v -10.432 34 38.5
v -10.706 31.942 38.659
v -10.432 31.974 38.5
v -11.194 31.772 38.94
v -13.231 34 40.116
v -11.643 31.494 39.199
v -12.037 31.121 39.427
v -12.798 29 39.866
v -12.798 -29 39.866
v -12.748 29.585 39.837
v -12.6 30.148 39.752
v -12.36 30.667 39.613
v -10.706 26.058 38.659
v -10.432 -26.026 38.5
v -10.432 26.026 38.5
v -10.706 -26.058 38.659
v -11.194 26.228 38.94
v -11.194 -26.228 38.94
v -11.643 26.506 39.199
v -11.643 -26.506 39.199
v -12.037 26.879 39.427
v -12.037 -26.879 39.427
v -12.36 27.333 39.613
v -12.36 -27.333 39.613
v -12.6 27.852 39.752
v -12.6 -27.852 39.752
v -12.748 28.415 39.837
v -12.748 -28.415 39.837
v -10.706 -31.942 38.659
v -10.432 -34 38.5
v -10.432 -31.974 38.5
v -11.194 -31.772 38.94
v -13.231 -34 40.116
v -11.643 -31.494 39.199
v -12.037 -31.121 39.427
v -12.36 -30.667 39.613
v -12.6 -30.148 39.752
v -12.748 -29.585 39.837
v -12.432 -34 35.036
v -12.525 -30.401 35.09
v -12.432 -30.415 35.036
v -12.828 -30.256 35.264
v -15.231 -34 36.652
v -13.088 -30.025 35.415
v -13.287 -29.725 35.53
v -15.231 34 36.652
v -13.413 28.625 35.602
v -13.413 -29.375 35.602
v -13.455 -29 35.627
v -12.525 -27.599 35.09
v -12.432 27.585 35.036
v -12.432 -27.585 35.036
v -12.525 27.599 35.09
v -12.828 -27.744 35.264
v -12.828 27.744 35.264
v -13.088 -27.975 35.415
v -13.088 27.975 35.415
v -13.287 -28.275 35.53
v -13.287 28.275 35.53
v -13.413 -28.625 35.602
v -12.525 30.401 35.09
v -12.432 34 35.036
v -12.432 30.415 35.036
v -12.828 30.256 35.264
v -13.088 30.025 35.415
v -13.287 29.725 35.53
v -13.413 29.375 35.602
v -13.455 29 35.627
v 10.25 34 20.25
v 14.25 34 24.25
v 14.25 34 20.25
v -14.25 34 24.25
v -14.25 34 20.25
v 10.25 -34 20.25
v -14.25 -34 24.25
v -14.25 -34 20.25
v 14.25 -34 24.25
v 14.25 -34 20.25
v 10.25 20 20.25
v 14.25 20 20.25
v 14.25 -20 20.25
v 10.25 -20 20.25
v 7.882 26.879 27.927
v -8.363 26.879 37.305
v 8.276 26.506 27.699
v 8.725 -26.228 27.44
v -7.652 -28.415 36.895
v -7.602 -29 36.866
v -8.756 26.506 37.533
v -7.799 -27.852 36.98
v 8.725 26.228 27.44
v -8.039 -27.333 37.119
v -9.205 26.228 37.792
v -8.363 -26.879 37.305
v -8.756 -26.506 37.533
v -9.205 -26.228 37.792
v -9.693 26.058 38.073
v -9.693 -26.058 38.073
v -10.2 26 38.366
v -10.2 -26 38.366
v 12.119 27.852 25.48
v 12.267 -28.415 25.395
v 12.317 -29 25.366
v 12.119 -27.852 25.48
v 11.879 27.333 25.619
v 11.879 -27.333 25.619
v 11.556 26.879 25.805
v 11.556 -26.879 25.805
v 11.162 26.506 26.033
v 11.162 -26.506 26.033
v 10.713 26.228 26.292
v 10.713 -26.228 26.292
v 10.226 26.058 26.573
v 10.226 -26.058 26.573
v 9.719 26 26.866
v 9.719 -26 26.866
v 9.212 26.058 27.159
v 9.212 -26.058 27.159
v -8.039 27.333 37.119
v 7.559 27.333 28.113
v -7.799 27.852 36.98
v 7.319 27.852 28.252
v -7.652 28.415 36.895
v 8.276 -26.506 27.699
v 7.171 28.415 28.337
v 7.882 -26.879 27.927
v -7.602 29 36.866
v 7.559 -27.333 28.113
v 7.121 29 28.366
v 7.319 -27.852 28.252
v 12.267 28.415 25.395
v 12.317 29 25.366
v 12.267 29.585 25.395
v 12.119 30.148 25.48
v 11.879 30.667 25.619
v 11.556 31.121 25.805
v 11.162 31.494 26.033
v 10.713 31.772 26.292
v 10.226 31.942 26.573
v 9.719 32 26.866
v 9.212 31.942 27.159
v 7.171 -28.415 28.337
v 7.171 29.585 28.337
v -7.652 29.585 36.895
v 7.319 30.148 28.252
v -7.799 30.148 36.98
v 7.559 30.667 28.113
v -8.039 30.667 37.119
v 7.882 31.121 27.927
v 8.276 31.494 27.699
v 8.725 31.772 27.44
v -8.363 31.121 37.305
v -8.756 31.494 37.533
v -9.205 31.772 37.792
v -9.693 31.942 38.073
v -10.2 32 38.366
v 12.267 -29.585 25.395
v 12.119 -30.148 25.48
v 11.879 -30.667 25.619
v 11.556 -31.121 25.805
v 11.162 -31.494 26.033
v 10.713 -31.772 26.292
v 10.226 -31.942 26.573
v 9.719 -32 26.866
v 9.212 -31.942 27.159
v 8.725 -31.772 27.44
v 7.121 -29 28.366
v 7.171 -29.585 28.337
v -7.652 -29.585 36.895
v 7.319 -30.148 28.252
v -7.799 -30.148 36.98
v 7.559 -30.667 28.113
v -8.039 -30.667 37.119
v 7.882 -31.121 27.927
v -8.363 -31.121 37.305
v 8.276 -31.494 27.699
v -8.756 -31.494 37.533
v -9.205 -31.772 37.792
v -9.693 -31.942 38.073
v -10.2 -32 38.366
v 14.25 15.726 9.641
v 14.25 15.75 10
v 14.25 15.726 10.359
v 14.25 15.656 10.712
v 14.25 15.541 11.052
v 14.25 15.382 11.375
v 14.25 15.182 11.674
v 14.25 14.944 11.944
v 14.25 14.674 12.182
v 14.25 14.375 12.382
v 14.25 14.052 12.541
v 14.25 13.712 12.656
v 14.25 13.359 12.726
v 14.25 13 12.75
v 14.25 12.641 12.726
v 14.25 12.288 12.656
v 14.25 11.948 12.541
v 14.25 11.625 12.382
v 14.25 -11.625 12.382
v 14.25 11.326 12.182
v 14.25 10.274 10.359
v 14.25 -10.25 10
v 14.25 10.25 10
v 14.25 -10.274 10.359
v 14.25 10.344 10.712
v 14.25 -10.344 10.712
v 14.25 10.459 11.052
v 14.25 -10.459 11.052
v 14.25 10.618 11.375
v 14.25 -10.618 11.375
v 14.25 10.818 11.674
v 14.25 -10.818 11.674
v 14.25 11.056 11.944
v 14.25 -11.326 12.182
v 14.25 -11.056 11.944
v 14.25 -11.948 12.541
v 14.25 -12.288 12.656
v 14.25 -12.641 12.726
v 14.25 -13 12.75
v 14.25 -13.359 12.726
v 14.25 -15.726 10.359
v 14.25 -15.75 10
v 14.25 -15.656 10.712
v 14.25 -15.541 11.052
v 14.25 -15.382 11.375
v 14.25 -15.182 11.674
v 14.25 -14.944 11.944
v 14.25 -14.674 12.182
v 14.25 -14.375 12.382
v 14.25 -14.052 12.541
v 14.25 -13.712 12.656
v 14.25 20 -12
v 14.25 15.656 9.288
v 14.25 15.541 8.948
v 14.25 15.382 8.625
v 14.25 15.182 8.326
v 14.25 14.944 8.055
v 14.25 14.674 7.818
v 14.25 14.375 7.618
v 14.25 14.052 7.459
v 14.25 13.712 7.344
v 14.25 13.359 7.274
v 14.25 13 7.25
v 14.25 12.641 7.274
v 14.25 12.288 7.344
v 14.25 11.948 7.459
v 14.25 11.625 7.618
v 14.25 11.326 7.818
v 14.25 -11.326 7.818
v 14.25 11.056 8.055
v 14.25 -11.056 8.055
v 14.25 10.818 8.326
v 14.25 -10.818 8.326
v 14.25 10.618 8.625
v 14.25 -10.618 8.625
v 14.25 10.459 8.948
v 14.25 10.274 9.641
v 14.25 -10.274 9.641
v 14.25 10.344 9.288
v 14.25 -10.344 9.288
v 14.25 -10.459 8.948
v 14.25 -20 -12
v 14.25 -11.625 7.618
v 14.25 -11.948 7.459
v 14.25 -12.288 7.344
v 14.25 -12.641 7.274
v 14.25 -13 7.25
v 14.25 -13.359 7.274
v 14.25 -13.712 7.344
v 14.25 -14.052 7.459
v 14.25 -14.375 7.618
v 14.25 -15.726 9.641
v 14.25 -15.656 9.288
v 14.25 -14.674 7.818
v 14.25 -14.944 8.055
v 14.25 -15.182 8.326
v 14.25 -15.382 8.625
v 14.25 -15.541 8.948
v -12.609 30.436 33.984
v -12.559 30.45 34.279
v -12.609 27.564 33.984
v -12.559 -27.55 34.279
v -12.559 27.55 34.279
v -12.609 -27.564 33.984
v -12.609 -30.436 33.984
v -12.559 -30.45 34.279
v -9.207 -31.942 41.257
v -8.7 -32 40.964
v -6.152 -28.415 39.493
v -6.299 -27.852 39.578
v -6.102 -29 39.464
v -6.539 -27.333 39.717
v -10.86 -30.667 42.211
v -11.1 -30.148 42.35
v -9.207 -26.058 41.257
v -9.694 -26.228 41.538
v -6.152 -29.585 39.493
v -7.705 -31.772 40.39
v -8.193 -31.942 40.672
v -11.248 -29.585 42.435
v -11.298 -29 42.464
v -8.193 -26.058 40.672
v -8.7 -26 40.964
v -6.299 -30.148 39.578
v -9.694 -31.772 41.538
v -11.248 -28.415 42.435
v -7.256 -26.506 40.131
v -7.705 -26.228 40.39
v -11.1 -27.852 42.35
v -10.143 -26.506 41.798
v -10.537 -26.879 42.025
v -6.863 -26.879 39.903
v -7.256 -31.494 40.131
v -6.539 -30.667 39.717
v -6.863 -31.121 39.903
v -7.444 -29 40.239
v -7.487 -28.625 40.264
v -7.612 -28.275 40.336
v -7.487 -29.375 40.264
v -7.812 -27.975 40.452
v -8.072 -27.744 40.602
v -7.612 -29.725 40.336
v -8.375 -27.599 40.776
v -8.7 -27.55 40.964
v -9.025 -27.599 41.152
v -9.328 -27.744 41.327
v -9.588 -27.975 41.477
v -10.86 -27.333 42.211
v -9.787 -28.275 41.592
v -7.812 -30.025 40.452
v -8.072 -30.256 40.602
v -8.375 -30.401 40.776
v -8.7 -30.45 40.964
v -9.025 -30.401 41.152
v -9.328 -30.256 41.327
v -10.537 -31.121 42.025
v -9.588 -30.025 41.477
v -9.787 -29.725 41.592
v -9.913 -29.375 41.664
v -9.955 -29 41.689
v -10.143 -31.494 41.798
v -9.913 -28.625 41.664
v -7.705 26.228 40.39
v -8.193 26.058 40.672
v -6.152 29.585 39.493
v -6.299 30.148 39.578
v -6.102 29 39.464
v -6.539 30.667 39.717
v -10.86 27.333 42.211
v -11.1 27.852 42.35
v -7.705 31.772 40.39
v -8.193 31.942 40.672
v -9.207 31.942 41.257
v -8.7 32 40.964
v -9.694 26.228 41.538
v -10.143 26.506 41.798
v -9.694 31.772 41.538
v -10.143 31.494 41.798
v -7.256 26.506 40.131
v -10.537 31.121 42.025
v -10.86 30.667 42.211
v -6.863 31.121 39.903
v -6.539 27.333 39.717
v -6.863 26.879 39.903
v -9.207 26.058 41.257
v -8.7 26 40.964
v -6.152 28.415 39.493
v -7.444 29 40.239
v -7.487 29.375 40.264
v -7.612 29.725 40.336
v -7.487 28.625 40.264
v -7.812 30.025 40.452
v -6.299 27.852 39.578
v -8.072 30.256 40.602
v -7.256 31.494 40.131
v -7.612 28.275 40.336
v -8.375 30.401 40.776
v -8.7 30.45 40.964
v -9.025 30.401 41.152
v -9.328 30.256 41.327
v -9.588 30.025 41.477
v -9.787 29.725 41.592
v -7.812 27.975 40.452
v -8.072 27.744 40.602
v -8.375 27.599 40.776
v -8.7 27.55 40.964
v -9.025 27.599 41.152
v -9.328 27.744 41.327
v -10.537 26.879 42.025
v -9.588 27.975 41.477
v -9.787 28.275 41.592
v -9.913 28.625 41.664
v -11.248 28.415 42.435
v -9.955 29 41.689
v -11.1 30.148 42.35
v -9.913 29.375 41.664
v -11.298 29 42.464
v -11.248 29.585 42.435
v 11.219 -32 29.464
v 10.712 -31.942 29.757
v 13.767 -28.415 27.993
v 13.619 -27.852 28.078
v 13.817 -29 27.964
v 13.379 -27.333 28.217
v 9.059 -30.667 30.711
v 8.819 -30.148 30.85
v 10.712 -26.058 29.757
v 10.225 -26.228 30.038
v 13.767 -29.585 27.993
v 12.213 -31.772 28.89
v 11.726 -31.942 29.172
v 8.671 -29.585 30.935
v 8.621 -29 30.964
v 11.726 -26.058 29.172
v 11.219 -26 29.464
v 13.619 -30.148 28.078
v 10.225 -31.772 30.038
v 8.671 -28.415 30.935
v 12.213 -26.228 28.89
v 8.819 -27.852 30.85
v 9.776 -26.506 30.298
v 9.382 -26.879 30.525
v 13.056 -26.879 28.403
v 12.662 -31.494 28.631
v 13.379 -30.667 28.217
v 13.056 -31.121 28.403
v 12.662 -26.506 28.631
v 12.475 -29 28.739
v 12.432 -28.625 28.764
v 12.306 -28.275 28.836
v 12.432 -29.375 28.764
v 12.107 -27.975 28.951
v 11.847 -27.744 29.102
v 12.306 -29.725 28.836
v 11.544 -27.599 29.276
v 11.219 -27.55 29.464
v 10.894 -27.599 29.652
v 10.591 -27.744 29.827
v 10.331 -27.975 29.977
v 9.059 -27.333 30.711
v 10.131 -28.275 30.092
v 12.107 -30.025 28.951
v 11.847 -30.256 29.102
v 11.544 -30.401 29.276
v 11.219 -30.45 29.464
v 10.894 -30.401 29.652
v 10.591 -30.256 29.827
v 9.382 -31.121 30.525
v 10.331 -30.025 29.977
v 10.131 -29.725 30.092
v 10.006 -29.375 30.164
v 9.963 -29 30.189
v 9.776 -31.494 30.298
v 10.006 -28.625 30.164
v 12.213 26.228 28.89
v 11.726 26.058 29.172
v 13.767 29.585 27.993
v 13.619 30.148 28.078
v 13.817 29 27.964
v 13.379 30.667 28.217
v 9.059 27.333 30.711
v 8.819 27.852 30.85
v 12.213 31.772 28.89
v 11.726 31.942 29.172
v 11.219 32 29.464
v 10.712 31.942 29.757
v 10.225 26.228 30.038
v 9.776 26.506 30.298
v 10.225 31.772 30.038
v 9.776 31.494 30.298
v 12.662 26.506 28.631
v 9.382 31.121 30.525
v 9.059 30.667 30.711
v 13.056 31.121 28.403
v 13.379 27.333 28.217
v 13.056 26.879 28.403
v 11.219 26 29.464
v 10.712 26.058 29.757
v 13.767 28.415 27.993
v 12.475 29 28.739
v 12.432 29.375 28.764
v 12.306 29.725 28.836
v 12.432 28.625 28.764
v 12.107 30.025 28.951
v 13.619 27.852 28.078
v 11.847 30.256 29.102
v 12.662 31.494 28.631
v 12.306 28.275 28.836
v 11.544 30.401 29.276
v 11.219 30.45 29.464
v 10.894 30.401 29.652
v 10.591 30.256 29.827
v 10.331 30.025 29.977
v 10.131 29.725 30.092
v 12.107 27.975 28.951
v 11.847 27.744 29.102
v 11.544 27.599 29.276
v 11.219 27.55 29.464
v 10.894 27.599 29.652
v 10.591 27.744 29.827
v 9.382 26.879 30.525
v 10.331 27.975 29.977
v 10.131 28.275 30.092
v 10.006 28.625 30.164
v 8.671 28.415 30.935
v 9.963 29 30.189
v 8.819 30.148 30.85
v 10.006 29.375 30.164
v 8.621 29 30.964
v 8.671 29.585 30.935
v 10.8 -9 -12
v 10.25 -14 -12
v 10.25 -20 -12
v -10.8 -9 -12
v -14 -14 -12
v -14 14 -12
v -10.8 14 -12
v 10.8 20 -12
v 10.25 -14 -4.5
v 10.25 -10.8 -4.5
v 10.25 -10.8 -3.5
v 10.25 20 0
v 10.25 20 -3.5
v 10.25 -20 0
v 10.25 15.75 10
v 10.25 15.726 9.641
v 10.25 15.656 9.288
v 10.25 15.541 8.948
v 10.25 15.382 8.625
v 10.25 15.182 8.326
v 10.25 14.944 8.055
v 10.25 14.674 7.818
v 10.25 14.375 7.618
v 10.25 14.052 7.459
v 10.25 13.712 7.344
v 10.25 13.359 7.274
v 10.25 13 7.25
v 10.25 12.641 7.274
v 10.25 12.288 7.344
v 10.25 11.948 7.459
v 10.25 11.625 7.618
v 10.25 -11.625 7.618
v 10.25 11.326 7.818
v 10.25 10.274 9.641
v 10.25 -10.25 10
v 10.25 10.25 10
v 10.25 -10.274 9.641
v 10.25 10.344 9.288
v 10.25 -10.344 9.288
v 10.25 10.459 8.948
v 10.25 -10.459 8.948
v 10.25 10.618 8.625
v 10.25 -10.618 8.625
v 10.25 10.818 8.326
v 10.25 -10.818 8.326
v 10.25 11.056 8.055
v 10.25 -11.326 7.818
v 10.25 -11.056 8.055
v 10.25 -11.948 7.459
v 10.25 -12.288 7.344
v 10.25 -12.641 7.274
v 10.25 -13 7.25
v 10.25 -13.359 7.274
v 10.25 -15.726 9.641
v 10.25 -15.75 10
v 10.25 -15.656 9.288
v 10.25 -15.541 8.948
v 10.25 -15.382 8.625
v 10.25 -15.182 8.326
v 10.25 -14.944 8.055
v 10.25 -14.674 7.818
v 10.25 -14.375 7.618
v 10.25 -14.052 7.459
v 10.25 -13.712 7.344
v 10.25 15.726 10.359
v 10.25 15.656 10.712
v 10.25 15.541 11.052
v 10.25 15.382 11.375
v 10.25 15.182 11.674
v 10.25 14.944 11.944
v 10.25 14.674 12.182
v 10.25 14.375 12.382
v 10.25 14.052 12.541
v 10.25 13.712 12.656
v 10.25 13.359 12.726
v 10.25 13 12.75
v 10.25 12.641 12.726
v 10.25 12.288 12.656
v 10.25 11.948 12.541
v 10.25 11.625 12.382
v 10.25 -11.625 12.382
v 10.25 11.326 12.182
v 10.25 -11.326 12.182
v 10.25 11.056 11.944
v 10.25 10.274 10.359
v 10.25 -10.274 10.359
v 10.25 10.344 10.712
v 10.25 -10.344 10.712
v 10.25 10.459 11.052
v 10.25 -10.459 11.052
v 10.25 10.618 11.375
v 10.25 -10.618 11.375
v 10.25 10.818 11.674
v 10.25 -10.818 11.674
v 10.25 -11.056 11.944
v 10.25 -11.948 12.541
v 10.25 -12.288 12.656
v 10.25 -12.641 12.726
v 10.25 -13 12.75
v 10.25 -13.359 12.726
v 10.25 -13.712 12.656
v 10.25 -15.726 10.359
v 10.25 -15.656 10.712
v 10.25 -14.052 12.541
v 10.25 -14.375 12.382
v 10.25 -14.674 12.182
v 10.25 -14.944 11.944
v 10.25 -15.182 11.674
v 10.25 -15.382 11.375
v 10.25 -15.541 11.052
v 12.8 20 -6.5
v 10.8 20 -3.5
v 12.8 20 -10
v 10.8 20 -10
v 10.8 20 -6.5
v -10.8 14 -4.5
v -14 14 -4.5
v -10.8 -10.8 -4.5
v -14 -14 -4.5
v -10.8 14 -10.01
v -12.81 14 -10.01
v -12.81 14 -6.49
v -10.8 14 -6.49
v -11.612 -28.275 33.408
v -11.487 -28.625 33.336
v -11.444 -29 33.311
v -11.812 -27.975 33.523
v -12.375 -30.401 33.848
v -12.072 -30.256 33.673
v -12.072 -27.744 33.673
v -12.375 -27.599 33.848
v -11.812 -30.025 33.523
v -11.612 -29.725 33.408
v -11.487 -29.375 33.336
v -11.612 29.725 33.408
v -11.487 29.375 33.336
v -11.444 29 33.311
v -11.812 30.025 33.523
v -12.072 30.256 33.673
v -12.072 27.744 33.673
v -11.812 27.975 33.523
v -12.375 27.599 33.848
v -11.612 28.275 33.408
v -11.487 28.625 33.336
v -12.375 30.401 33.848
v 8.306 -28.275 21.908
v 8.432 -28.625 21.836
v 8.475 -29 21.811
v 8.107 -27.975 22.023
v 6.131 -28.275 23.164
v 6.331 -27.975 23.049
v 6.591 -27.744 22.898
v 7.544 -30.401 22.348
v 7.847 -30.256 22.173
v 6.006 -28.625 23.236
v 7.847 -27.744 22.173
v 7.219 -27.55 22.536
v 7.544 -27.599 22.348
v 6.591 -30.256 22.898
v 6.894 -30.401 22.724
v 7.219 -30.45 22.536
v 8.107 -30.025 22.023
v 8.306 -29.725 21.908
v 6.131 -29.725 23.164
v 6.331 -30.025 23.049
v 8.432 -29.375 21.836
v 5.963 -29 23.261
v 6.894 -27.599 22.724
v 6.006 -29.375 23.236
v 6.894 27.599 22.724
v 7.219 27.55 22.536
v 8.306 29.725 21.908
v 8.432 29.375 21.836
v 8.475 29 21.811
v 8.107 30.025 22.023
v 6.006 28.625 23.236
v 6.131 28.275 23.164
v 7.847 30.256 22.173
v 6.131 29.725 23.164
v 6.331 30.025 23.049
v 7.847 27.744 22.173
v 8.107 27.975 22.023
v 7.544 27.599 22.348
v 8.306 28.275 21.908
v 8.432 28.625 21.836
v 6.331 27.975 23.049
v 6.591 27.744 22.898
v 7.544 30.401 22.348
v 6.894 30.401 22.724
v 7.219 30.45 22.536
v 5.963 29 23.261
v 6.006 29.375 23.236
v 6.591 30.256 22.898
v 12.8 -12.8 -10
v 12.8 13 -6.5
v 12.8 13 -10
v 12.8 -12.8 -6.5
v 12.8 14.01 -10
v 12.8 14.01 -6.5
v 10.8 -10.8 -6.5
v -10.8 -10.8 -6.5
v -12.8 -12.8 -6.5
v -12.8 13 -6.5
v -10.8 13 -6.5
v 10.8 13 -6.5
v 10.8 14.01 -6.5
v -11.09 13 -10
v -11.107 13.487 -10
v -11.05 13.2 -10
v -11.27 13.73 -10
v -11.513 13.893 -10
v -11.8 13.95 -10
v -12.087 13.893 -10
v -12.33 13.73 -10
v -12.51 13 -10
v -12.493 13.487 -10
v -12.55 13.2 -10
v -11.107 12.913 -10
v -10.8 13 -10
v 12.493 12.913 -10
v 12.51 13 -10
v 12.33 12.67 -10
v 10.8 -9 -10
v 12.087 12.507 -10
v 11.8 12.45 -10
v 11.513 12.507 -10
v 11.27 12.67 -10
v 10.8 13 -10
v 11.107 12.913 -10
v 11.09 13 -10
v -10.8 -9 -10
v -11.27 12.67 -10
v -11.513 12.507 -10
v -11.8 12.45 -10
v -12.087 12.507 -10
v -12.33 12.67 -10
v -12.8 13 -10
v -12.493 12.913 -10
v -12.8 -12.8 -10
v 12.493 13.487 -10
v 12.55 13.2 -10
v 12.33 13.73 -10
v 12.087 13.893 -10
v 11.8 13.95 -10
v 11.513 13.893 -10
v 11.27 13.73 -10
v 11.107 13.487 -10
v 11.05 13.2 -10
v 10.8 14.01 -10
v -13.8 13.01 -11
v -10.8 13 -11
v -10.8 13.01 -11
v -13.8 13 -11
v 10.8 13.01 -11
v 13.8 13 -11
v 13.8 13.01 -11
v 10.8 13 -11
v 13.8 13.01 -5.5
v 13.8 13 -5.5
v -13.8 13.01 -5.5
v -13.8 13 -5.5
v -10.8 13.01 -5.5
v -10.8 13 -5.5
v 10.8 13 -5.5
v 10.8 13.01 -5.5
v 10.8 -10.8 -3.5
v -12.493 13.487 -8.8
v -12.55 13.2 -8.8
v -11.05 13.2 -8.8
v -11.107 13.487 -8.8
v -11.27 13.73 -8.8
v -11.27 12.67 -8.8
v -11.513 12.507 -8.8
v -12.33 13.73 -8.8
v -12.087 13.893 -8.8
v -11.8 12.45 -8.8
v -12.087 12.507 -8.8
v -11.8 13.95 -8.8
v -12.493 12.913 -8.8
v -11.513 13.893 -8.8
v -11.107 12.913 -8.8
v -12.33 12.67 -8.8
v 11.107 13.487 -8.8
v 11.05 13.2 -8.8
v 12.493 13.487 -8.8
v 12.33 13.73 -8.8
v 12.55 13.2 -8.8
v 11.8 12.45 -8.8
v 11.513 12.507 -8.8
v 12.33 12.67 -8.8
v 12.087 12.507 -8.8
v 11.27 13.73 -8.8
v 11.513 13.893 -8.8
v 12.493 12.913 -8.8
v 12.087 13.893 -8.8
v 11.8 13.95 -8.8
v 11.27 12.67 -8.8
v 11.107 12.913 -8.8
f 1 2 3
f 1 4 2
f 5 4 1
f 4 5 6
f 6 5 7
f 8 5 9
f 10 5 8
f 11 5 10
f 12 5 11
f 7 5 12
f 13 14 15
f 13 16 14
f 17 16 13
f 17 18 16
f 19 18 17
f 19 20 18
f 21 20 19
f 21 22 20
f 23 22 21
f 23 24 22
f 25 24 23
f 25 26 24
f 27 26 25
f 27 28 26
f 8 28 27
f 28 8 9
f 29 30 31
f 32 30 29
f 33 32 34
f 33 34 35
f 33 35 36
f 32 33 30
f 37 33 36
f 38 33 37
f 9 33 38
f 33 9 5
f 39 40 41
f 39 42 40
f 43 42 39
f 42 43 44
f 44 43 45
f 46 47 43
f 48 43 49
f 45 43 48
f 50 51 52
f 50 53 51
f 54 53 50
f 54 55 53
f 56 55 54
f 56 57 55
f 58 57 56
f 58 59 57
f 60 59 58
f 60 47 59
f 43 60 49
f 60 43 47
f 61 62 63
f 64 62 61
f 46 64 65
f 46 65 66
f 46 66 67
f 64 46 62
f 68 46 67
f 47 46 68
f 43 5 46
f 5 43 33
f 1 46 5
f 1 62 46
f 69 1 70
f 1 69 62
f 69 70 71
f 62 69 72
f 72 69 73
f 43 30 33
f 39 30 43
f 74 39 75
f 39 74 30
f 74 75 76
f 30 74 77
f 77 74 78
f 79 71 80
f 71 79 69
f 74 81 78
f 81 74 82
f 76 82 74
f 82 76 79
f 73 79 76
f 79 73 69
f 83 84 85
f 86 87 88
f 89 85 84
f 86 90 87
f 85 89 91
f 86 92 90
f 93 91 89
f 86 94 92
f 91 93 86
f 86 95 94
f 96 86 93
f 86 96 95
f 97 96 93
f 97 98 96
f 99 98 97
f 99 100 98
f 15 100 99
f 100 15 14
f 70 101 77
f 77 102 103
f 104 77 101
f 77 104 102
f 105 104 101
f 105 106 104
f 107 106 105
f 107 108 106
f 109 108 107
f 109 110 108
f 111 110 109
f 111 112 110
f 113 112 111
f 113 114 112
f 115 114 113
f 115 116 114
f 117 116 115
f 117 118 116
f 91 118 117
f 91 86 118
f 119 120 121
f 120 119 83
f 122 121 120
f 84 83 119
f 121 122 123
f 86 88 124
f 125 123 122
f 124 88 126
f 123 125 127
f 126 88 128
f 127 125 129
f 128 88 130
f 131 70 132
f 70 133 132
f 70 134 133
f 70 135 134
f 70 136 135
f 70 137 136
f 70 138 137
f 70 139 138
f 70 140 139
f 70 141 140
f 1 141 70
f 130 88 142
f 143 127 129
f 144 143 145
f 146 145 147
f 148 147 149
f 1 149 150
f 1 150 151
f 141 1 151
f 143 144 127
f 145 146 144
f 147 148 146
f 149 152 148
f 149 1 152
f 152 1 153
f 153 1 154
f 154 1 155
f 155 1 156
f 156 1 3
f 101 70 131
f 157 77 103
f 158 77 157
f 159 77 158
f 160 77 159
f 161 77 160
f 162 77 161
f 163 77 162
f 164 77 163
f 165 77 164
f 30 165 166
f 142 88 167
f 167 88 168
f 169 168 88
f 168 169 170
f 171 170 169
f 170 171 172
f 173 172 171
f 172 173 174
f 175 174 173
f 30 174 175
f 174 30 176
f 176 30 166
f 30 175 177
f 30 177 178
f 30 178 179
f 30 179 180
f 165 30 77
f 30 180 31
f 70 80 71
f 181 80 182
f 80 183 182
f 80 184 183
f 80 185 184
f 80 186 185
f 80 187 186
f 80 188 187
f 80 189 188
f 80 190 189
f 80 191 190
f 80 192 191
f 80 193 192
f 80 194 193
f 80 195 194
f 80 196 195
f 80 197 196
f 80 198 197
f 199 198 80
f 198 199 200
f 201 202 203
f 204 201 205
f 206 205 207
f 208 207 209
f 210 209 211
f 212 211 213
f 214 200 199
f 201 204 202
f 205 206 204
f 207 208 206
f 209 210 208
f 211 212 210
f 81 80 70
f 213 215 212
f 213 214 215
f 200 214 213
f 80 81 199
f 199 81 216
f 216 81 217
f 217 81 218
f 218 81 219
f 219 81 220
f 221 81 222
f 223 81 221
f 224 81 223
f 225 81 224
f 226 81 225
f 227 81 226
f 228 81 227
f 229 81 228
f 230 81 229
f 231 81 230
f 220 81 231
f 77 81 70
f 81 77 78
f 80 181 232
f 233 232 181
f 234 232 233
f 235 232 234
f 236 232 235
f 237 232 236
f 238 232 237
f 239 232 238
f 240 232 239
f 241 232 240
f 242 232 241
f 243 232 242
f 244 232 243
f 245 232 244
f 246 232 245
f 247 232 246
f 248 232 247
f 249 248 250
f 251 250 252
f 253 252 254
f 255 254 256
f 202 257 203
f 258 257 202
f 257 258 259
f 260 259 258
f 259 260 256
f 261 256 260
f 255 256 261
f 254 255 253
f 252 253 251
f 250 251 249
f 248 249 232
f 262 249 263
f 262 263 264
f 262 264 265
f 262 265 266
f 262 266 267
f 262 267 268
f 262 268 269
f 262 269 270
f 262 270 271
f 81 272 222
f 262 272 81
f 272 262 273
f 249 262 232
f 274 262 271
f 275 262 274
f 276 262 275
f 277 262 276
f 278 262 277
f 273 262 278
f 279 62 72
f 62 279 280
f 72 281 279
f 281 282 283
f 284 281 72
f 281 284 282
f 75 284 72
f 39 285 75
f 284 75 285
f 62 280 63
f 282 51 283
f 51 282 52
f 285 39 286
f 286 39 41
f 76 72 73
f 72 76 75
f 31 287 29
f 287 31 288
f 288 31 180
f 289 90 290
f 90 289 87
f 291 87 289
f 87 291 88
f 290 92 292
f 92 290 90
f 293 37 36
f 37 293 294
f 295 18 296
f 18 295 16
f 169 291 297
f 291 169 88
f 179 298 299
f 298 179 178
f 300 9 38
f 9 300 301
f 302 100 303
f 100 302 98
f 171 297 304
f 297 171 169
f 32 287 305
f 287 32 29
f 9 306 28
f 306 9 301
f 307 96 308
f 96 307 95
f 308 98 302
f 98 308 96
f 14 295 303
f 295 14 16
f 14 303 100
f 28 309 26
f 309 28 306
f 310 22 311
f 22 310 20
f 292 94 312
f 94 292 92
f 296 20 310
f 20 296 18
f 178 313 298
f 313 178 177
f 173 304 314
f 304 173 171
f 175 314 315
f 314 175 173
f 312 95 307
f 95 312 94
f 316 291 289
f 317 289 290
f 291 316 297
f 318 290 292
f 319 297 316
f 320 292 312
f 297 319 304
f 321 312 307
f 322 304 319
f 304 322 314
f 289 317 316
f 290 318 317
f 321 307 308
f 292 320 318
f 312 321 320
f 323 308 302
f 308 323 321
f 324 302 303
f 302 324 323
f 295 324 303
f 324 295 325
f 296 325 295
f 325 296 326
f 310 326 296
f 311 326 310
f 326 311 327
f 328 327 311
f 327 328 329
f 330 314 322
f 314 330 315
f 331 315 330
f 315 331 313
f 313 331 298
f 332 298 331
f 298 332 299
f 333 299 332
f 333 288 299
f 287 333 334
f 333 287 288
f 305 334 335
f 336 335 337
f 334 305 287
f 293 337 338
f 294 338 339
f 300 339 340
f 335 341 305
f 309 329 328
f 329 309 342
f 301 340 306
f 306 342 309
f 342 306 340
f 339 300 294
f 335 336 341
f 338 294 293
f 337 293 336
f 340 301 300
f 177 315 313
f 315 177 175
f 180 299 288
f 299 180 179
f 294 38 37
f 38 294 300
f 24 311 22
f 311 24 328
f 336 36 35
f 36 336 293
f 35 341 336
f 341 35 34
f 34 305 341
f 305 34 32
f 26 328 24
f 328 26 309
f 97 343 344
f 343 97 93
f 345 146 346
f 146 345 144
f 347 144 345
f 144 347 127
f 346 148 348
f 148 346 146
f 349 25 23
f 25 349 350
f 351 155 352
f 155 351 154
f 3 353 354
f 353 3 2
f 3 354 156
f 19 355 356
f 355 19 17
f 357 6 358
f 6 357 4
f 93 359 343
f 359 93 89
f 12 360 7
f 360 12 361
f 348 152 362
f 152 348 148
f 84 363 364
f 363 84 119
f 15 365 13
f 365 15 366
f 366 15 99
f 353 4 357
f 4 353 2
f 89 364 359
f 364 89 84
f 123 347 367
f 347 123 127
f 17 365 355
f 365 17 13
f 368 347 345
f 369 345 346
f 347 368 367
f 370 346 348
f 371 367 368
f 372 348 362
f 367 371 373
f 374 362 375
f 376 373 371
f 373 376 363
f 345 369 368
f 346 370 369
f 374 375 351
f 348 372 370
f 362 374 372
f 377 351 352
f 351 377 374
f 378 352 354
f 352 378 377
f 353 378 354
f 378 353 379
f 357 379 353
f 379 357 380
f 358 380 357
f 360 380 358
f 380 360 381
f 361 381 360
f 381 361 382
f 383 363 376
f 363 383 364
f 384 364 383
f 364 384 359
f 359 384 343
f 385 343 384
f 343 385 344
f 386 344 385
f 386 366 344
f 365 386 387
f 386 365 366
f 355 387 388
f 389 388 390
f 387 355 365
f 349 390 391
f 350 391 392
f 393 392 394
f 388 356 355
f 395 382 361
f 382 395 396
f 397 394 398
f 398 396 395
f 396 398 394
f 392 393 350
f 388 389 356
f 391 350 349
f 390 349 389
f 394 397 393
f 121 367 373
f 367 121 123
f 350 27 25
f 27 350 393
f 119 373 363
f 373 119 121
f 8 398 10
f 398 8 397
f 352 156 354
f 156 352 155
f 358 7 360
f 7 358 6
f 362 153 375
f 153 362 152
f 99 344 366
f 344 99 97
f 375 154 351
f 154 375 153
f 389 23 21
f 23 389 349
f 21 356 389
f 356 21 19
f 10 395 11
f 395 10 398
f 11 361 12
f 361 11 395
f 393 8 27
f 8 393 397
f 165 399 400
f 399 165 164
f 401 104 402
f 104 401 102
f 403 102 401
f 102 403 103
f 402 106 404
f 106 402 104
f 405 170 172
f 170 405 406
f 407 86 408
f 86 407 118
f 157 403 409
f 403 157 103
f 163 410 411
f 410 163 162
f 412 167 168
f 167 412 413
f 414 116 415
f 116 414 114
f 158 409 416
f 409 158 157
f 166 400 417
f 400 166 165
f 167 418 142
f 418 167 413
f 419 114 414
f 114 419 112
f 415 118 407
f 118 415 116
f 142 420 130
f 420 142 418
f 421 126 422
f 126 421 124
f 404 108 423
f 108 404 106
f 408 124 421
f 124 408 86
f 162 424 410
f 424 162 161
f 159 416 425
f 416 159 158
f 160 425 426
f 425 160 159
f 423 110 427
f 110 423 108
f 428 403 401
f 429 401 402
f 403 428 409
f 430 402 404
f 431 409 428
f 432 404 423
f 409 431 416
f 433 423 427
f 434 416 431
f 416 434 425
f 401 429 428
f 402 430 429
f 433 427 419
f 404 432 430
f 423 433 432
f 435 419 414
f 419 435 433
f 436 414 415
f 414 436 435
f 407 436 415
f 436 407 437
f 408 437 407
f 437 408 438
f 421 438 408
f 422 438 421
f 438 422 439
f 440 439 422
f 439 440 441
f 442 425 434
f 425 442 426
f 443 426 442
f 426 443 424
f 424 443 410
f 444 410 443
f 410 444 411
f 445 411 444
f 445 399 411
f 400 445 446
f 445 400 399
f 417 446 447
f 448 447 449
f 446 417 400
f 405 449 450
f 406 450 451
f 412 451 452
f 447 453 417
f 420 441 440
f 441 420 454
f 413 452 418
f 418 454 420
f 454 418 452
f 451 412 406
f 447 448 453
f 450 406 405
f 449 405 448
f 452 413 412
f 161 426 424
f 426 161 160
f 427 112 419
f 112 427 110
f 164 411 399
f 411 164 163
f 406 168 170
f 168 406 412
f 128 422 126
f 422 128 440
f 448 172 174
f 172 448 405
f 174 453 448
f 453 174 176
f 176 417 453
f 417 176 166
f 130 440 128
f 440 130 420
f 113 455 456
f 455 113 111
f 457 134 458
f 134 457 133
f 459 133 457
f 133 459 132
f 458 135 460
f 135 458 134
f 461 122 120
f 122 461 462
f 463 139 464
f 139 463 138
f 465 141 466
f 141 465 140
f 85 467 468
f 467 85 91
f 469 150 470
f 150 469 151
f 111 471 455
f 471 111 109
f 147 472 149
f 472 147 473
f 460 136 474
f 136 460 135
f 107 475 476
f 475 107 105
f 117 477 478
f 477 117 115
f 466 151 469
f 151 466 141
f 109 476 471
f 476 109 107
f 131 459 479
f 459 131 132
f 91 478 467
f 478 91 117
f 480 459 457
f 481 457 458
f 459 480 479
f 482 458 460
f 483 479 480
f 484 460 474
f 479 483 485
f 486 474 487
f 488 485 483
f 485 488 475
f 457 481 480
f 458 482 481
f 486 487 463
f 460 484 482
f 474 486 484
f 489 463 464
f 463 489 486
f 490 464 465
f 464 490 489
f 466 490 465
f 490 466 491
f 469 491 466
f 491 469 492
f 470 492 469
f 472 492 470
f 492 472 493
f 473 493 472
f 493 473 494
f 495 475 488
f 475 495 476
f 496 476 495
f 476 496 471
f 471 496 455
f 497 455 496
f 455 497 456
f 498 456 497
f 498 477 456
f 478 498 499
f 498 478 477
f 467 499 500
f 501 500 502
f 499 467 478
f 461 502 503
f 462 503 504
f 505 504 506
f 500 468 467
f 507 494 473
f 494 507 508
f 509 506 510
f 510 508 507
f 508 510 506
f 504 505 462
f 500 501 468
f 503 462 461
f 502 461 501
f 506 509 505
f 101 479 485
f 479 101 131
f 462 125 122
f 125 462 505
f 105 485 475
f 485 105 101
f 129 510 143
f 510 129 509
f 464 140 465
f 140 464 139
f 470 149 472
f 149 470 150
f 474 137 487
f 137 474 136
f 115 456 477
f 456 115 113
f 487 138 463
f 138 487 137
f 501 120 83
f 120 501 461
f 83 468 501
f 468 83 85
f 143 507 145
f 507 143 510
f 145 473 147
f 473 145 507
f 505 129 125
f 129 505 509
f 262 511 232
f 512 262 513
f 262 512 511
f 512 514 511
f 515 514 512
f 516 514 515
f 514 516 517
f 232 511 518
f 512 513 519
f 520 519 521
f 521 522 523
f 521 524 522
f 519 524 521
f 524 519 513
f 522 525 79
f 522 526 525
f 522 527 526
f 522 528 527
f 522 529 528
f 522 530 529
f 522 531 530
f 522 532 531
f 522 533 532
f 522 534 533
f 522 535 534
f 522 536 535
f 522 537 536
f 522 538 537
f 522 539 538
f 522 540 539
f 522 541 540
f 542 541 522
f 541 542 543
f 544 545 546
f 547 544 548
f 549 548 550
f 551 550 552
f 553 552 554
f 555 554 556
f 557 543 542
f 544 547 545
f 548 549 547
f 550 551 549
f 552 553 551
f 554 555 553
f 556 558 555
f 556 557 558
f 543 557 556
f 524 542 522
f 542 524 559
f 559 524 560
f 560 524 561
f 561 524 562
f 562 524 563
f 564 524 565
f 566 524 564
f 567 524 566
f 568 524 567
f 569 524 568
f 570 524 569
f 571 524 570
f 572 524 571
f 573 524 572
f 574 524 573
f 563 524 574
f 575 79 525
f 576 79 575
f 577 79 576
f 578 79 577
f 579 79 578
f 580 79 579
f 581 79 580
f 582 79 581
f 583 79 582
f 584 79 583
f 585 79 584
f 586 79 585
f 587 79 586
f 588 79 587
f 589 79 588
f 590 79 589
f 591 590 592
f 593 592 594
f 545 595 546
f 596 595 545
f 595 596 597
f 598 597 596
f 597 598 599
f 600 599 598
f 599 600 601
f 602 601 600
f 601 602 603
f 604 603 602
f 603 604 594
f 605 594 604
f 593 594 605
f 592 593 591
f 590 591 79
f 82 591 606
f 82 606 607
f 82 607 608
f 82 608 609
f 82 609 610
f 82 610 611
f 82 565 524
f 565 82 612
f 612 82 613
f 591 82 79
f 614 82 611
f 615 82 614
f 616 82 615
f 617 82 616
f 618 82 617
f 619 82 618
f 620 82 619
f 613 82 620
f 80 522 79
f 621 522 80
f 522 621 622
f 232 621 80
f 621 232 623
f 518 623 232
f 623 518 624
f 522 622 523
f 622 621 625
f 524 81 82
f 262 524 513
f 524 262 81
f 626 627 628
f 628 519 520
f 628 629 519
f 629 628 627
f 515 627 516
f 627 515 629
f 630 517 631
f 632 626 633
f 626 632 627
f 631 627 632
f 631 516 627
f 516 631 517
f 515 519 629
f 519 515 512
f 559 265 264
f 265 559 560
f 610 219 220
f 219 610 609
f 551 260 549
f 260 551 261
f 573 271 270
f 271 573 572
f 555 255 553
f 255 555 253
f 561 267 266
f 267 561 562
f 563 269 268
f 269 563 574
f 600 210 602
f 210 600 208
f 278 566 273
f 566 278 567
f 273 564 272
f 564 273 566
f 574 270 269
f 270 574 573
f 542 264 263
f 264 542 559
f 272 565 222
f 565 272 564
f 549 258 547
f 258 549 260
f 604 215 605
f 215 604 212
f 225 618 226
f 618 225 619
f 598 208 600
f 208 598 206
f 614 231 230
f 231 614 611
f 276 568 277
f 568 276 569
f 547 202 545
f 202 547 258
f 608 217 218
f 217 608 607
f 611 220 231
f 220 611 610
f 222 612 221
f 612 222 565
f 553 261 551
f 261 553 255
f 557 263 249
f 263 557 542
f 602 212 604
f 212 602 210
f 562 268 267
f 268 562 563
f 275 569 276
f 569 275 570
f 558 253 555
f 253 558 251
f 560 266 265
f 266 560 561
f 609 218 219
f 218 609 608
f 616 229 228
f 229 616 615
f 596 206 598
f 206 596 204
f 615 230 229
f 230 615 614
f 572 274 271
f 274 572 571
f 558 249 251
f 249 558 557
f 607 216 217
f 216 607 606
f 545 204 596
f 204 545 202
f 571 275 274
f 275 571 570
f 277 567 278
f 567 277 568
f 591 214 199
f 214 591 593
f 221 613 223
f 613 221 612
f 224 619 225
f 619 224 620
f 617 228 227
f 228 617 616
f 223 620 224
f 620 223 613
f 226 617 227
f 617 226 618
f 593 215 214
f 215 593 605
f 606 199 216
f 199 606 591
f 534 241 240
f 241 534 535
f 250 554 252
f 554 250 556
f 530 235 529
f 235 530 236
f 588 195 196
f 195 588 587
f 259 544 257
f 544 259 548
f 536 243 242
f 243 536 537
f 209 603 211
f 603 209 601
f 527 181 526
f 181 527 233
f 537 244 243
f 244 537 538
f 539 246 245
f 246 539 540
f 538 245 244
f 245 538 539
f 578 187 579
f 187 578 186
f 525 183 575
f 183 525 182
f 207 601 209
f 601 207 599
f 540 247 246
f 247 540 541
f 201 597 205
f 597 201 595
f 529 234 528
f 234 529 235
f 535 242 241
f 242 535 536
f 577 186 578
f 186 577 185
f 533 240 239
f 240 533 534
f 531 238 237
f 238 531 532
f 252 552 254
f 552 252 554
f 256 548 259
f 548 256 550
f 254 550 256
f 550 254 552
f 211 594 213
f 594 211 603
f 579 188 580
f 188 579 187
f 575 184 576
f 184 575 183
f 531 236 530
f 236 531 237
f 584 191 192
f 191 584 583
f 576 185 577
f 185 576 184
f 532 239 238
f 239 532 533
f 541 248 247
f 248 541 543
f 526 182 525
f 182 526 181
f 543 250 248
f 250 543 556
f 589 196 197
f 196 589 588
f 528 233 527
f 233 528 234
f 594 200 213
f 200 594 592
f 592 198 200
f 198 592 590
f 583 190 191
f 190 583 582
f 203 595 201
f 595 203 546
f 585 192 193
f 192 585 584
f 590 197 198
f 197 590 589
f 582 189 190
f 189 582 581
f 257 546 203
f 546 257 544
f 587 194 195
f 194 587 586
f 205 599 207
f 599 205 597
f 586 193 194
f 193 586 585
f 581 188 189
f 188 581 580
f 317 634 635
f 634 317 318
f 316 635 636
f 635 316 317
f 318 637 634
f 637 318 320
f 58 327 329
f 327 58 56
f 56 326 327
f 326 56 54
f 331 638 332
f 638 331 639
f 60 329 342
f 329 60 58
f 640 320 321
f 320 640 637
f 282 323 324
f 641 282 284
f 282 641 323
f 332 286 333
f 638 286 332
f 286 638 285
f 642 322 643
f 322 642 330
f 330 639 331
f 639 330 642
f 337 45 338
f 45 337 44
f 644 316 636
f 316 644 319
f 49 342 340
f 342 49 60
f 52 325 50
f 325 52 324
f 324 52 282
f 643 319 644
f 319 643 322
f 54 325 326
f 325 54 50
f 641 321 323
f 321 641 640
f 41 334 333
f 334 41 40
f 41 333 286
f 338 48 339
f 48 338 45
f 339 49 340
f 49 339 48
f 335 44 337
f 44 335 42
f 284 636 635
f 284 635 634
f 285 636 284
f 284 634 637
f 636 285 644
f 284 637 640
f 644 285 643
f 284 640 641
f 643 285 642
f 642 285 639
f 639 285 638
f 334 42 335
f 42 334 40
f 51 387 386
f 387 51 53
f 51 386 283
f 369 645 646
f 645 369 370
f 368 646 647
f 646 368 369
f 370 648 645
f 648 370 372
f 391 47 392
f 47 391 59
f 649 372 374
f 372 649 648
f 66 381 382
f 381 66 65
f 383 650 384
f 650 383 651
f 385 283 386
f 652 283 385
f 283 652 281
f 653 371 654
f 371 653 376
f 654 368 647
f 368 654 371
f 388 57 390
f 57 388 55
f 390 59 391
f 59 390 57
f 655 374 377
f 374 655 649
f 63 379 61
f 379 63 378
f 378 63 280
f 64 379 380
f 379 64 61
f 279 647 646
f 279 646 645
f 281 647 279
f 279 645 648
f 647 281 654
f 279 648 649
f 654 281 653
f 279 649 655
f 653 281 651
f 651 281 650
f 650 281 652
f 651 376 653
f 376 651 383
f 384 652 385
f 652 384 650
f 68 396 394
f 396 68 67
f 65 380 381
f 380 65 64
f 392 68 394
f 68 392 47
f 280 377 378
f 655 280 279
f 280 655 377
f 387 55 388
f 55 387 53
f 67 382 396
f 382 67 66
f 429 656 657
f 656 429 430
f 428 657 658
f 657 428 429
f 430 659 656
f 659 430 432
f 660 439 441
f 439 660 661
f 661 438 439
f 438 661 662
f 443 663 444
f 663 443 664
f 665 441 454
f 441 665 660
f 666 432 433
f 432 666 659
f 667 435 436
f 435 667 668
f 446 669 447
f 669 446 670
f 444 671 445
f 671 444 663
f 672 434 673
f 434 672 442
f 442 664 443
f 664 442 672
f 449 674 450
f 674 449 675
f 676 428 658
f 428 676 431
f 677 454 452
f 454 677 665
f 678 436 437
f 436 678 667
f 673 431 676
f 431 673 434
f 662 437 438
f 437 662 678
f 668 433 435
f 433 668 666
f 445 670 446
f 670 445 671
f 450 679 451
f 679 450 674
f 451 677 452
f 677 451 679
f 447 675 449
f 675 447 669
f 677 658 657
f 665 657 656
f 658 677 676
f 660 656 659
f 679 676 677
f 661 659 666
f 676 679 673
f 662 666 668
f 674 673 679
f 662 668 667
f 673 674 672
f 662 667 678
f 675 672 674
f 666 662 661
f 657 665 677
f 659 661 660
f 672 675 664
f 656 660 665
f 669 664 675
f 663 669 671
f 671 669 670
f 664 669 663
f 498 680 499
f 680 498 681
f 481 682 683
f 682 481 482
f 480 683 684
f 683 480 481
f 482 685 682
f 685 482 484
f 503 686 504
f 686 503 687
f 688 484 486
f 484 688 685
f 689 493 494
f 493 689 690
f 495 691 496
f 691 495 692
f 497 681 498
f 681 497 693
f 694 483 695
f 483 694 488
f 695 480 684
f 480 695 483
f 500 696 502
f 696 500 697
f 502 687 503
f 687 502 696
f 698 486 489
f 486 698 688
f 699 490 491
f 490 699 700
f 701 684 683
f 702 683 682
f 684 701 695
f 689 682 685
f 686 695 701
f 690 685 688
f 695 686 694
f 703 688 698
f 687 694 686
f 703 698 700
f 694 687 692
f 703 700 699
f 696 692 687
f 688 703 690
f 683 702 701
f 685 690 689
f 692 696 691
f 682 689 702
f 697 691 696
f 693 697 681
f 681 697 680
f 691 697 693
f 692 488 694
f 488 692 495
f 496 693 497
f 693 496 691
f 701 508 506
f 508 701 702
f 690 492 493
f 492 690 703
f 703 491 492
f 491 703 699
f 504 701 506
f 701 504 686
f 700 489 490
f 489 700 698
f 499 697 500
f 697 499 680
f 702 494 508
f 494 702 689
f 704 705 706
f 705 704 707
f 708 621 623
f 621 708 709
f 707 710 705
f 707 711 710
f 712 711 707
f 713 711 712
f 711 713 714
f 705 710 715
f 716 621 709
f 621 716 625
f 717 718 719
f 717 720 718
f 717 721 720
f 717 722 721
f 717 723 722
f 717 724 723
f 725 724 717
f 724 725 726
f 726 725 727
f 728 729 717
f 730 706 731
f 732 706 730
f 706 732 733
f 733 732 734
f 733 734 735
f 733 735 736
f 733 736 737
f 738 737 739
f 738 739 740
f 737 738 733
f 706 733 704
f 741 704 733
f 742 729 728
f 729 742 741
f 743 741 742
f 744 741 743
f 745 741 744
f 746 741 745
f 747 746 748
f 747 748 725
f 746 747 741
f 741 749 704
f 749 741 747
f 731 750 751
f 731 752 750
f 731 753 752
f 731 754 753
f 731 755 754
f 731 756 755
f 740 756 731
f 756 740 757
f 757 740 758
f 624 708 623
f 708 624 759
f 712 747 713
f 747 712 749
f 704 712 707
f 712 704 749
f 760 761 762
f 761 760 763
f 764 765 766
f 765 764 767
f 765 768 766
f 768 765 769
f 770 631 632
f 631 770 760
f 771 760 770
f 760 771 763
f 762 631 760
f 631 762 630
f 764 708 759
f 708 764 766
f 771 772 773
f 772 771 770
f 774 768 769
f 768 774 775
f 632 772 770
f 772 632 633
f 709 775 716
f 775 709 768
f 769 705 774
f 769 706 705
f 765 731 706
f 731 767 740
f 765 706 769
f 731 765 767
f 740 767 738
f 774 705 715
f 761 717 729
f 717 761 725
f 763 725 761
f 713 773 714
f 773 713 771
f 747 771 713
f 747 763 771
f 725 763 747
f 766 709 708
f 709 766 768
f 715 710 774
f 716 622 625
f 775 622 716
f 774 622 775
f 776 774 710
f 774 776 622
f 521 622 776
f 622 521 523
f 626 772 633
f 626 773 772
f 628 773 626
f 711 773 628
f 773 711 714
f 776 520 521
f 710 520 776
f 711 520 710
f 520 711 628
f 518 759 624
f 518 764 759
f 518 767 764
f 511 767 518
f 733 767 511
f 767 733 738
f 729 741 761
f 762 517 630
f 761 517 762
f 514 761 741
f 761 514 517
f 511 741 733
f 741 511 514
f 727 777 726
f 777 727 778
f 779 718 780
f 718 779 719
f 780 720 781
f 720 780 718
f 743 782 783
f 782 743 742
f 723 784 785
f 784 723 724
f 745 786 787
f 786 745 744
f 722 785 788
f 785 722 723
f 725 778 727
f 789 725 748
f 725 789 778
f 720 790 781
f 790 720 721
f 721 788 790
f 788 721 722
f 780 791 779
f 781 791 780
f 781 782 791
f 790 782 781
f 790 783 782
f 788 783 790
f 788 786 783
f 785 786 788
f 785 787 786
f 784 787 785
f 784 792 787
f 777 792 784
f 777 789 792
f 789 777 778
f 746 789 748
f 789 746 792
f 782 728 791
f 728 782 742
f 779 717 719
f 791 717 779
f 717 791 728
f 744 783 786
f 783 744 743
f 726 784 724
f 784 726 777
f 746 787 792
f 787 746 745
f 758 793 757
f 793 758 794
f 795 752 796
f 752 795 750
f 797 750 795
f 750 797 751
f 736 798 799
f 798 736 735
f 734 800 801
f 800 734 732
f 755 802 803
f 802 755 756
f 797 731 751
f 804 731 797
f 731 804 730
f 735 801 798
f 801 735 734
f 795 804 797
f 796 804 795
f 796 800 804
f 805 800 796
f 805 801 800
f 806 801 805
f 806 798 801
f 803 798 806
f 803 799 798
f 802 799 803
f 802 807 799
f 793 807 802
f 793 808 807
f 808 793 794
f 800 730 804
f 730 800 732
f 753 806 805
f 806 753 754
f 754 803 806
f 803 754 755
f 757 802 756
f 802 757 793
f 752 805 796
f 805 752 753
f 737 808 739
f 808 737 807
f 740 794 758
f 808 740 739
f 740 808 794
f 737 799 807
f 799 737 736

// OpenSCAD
// file: common-2020.scad
// Shared socket geometry for the scanner stand brackets.
// A socket holds the end of a 2020 profile running down -Z from its closed end at z=0.

$fn = 48;

profile     = 20;
clearance   = 0.25;   // per side; raise if the profile will not slide in
wall        = 4;
depth       = 30;     // how far a profile slides into a socket
screw_d     = 5.5;
screw_depth = [9, 22];

inner = profile + 2 * clearance;
outer = inner + 2 * wall;
far   = 400;          // long enough to clear anything a hull adds in a profile's path

module socket_body() translate([-outer / 2, -outer / 2, -depth]) cube([outer, outer, depth + wall]);

module socket_void() translate([-inner / 2, -inner / 2, -far]) cube([inner, inner, far]);

// M5 holes through the front and back walls, into T-nuts in the profile's slots.
module socket_screws(depths = screw_depth)
    for (d = depths)
        translate([0, 0, -d]) rotate([90, 0, 0]) cylinder(d = screw_d, h = outer + 2, center = true);
// file: pi-camera-bracket.scad
// One-piece mount for the Pi and the camera on the cross bar of the triangle stand.
// A C that wraps the bar: the Pi Zero screws onto the plate on top, the camera board
// slides into the slot underneath, looking down through the window, on the bar's
// centre line. The open side leaves room for the ribbon cable to run from the camera
// up to the Pi, and lets the mount come off the bar without taking the frame apart.
//
// The boards are held directly, so the cases from thingiverse:2615180 are not needed.
// Board sizes are the published ones for a Pi Zero and a Pi camera module; check them
// against yours, and change pi_holes / cam_board / board_t if they differ.
//
// Hardware: 2x M5x10 button head + 2x M5 T-nuts (slot 6) into the bar's side slot,
// 4x M3x6 self-tapping into the posts for the Pi.
// Print standing on its back, the face with the two M5 holes; PETG, 4+ walls,
// 40% infill, no supports.

include <common-2020.scad>

// Bar runs along Y with its bottom face at z=0. The mount grips its +X side.
back      = inner / 2 + wall;      // outer face of the part against the bar's side
top_z     = profile + clearance;   // underside of the plate over the bar

// Pi Zero: 65 x 30 board, holes 58 x 23 apart; M3 screws go through them.
// pi4-camera-bracket.scad sets these for a Pi 4 and reuses everything else.
pi_board  = [30, 65];
pi_tilt   = 0;                // degrees the Pi leans up toward the open side; see
                              // pi4-camera-bracket-tilted.scad
pi_holes  = [23, 58];
post_h    = 3;
post_d    = 6;
post_hole = 2.9;              // for M3 self-tapping; printed holes come out ~0.3 mm small
// Centre of the holes, across the bar: on the bar's centre line, unless that puts
// a post out past the back face the part stands on to print.
pi_x      = min(0, back - post_d / 2 - pi_holes[0] / 2);
plate     = [[-17, back], [-34, 34]];

// Camera board: 25 x 25 as measured, lens looking down through the window.
// The window runs out to the way in as a channel, so the lens barrel and whatever
// else stands out of the board's underside slide along it instead of hitting the floor.
// The board lies on the floor of the slot under its own weight, so slack above it
// costs nothing but makes it go in.
board     = [25, 25];
cam_board = board + [0.6, 0.6]; // the slot: 0.3 mm of play on each side, so the
                            // board goes in without room to rattle; in along +Y
board_t   = 3.5;            // board, plus what is soldered within reach of the lips
window    = [21.6, 18];     // what the camera looks through, and the channel's width;
                            // what is left either side is the 2 mm ledge the board rests on
lead_in   = 1;              // funnel at the mouth of the slot; at most `rim`
tray_z    = -12;            // underside of the tray
floor_t   = 2;
rim       = 1.2;            // material around the slot, beside it and behind it
lip       = 2;              // how far the lips reach in over the board's edges
bump      = 1.2;            // stops the board sliding back out

// The tray keeps `rim` of wall on the back side too, sitting over if the slot is
// wider than the room between the bar's side and the back of this part. The block
// is then the slot plus a rim each side, which is what makes it 28 mm across.
cam_x     = min(0, -(cam_board[0] / 2 + rim - back));

web_y     = 20;
bar_screws = [-13, 13];

slot_z    = tray_z + floor_t;

module plate() translate([plate[0][0], plate[1][0], top_z])
    cube([plate[0][1] - plate[0][0], plate[1][1] - plate[1][0], wall]);

// What sits on the bar: the plate's width over it, which stays flat however the
// Pi leans.
module roof() translate([-outer / 2, plate[1][0], top_z])
    cube([back + outer / 2, plate[1][1] - plate[1][0], wall]);

// The Pi's plate, leaned up by pi_tilt about its top edge along the back face.
// At no tilt this changes nothing.
module pi_frame() translate([back, 0, top_z + wall]) rotate([0, pi_tilt, 0])
    translate([-back, 0, -(top_z + wall)]) children();

// The leaned plate, and a wedge filling in under it over the bar.
module pi_plate() {
    pi_frame() plate();
    hull() { roof(); pi_frame() roof(); }
}

// Sunk half a millimetre into the plate rather than standing on it: once leaned,
// faces that only touch no longer quite meet, and the union leaves a seam.
module posts() pi_frame() for (x = [-1, 1], y = [-1, 1])
    translate([pi_x + x * pi_holes[0] / 2, y * pi_holes[1] / 2, top_z + wall - 0.5])
        cylinder(d = post_d, h = post_h + 0.5, $fn = 32);

module web() translate([inner / 2, -web_y, tray_z]) cube([wall, 2 * web_y, top_z + wall - tray_z]);

module tray() translate([cam_x - cam_board[0] / 2 - rim, -cam_board[1] / 2 - rim, tray_z])
    cube([cam_board[0] / 2 + rim + back - cam_x, cam_board[1] + 2 * rim,
          floor_t + board_t + lip]);

difference() {
    union() { pi_plate(); posts(); web(); tray(); }

    // the bar itself, and the slot the camera board slides into
    translate([-far, -far, 0]) cube([far + inner / 2, 2 * far, top_z]);
    translate([cam_x - cam_board[0] / 2, -cam_board[1] / 2, slot_z])
        cube([cam_board[0], far, board_t]);
    hull() for (d = [0, lead_in])
        translate([cam_x - cam_board[0] / 2 - d, cam_board[1] / 2 + rim - d, slot_z - d])
            cube([cam_board[0] + 2 * d, 0.01, board_t + 2 * d]);
    // over the board: open, apart from a lip along each side
    translate([cam_x - cam_board[0] / 2 + lip, -cam_board[1] / 2 + lip, slot_z + board_t])
        cube([cam_board[0] - 2 * lip, far, lip + 1]);
    // what the camera looks through
    translate([cam_x - window[0] / 2, -window[1] / 2, tray_z - 1])
        cube([window[0], far, floor_t + 2]);

    for (y = bar_screws) translate([inner / 2 - 1, y, profile / 2]) rotate([0, 90, 0]) cylinder(d = screw_d, h = wall + 2);
    pi_frame() for (x = [-1, 1], y = [-1, 1])
        translate([pi_x + x * pi_holes[0] / 2, y * pi_holes[1] / 2, top_z - 1])
            cylinder(d = post_hole, h = wall + post_h + 2, $fn = 24);
}

// A bump on each ledge, just behind the board's back edge once it is all the way in,
// to keep it from sliding out. The board rides over them on the way in.
for (x = [-1, 1])
    translate([cam_x + x * (cam_board[0] + window[0]) / 4, -cam_board[1] / 2 + board[1] + 1, slot_z])
        cylinder(d = 1.5, h = bump, $fn = 16);   // narrower than the ledge it sits on
// main file
// The Pi Zero mount from pi-camera-bracket.scad, with the Pi leaned up at pi_tilt.
// The plate turns about its edge along the back face, so the side over the open
// side of the C rises. What sits on the bar stays flat, with a wedge filling in
// between it and the leaned plate.
//
// Hardware: as pi-camera-bracket.scad.
// Print standing on its back, the face with the two M5 holes; PETG, 4+ walls,
// 40% infill, no supports. The leaned plate is 30 degrees off upright that way,
// which prints without help.

include <pi-camera-bracket.scad>

pi_tilt   = 30;

// Leaning up tips the post tops toward the back face, so the Pi moves in far enough
// that they stay behind it and the part still stands flat on that face to print.
pi_x      = back - post_d / 2 - pi_holes[0] / 2 - post_h * tan(pi_tilt) - 0.5;

// The plate grows on the far side by as much, so the far posts stay on it.
plate     = [[pi_x - pi_holes[0] / 2 - 3.5, back], [-34, 34]];
